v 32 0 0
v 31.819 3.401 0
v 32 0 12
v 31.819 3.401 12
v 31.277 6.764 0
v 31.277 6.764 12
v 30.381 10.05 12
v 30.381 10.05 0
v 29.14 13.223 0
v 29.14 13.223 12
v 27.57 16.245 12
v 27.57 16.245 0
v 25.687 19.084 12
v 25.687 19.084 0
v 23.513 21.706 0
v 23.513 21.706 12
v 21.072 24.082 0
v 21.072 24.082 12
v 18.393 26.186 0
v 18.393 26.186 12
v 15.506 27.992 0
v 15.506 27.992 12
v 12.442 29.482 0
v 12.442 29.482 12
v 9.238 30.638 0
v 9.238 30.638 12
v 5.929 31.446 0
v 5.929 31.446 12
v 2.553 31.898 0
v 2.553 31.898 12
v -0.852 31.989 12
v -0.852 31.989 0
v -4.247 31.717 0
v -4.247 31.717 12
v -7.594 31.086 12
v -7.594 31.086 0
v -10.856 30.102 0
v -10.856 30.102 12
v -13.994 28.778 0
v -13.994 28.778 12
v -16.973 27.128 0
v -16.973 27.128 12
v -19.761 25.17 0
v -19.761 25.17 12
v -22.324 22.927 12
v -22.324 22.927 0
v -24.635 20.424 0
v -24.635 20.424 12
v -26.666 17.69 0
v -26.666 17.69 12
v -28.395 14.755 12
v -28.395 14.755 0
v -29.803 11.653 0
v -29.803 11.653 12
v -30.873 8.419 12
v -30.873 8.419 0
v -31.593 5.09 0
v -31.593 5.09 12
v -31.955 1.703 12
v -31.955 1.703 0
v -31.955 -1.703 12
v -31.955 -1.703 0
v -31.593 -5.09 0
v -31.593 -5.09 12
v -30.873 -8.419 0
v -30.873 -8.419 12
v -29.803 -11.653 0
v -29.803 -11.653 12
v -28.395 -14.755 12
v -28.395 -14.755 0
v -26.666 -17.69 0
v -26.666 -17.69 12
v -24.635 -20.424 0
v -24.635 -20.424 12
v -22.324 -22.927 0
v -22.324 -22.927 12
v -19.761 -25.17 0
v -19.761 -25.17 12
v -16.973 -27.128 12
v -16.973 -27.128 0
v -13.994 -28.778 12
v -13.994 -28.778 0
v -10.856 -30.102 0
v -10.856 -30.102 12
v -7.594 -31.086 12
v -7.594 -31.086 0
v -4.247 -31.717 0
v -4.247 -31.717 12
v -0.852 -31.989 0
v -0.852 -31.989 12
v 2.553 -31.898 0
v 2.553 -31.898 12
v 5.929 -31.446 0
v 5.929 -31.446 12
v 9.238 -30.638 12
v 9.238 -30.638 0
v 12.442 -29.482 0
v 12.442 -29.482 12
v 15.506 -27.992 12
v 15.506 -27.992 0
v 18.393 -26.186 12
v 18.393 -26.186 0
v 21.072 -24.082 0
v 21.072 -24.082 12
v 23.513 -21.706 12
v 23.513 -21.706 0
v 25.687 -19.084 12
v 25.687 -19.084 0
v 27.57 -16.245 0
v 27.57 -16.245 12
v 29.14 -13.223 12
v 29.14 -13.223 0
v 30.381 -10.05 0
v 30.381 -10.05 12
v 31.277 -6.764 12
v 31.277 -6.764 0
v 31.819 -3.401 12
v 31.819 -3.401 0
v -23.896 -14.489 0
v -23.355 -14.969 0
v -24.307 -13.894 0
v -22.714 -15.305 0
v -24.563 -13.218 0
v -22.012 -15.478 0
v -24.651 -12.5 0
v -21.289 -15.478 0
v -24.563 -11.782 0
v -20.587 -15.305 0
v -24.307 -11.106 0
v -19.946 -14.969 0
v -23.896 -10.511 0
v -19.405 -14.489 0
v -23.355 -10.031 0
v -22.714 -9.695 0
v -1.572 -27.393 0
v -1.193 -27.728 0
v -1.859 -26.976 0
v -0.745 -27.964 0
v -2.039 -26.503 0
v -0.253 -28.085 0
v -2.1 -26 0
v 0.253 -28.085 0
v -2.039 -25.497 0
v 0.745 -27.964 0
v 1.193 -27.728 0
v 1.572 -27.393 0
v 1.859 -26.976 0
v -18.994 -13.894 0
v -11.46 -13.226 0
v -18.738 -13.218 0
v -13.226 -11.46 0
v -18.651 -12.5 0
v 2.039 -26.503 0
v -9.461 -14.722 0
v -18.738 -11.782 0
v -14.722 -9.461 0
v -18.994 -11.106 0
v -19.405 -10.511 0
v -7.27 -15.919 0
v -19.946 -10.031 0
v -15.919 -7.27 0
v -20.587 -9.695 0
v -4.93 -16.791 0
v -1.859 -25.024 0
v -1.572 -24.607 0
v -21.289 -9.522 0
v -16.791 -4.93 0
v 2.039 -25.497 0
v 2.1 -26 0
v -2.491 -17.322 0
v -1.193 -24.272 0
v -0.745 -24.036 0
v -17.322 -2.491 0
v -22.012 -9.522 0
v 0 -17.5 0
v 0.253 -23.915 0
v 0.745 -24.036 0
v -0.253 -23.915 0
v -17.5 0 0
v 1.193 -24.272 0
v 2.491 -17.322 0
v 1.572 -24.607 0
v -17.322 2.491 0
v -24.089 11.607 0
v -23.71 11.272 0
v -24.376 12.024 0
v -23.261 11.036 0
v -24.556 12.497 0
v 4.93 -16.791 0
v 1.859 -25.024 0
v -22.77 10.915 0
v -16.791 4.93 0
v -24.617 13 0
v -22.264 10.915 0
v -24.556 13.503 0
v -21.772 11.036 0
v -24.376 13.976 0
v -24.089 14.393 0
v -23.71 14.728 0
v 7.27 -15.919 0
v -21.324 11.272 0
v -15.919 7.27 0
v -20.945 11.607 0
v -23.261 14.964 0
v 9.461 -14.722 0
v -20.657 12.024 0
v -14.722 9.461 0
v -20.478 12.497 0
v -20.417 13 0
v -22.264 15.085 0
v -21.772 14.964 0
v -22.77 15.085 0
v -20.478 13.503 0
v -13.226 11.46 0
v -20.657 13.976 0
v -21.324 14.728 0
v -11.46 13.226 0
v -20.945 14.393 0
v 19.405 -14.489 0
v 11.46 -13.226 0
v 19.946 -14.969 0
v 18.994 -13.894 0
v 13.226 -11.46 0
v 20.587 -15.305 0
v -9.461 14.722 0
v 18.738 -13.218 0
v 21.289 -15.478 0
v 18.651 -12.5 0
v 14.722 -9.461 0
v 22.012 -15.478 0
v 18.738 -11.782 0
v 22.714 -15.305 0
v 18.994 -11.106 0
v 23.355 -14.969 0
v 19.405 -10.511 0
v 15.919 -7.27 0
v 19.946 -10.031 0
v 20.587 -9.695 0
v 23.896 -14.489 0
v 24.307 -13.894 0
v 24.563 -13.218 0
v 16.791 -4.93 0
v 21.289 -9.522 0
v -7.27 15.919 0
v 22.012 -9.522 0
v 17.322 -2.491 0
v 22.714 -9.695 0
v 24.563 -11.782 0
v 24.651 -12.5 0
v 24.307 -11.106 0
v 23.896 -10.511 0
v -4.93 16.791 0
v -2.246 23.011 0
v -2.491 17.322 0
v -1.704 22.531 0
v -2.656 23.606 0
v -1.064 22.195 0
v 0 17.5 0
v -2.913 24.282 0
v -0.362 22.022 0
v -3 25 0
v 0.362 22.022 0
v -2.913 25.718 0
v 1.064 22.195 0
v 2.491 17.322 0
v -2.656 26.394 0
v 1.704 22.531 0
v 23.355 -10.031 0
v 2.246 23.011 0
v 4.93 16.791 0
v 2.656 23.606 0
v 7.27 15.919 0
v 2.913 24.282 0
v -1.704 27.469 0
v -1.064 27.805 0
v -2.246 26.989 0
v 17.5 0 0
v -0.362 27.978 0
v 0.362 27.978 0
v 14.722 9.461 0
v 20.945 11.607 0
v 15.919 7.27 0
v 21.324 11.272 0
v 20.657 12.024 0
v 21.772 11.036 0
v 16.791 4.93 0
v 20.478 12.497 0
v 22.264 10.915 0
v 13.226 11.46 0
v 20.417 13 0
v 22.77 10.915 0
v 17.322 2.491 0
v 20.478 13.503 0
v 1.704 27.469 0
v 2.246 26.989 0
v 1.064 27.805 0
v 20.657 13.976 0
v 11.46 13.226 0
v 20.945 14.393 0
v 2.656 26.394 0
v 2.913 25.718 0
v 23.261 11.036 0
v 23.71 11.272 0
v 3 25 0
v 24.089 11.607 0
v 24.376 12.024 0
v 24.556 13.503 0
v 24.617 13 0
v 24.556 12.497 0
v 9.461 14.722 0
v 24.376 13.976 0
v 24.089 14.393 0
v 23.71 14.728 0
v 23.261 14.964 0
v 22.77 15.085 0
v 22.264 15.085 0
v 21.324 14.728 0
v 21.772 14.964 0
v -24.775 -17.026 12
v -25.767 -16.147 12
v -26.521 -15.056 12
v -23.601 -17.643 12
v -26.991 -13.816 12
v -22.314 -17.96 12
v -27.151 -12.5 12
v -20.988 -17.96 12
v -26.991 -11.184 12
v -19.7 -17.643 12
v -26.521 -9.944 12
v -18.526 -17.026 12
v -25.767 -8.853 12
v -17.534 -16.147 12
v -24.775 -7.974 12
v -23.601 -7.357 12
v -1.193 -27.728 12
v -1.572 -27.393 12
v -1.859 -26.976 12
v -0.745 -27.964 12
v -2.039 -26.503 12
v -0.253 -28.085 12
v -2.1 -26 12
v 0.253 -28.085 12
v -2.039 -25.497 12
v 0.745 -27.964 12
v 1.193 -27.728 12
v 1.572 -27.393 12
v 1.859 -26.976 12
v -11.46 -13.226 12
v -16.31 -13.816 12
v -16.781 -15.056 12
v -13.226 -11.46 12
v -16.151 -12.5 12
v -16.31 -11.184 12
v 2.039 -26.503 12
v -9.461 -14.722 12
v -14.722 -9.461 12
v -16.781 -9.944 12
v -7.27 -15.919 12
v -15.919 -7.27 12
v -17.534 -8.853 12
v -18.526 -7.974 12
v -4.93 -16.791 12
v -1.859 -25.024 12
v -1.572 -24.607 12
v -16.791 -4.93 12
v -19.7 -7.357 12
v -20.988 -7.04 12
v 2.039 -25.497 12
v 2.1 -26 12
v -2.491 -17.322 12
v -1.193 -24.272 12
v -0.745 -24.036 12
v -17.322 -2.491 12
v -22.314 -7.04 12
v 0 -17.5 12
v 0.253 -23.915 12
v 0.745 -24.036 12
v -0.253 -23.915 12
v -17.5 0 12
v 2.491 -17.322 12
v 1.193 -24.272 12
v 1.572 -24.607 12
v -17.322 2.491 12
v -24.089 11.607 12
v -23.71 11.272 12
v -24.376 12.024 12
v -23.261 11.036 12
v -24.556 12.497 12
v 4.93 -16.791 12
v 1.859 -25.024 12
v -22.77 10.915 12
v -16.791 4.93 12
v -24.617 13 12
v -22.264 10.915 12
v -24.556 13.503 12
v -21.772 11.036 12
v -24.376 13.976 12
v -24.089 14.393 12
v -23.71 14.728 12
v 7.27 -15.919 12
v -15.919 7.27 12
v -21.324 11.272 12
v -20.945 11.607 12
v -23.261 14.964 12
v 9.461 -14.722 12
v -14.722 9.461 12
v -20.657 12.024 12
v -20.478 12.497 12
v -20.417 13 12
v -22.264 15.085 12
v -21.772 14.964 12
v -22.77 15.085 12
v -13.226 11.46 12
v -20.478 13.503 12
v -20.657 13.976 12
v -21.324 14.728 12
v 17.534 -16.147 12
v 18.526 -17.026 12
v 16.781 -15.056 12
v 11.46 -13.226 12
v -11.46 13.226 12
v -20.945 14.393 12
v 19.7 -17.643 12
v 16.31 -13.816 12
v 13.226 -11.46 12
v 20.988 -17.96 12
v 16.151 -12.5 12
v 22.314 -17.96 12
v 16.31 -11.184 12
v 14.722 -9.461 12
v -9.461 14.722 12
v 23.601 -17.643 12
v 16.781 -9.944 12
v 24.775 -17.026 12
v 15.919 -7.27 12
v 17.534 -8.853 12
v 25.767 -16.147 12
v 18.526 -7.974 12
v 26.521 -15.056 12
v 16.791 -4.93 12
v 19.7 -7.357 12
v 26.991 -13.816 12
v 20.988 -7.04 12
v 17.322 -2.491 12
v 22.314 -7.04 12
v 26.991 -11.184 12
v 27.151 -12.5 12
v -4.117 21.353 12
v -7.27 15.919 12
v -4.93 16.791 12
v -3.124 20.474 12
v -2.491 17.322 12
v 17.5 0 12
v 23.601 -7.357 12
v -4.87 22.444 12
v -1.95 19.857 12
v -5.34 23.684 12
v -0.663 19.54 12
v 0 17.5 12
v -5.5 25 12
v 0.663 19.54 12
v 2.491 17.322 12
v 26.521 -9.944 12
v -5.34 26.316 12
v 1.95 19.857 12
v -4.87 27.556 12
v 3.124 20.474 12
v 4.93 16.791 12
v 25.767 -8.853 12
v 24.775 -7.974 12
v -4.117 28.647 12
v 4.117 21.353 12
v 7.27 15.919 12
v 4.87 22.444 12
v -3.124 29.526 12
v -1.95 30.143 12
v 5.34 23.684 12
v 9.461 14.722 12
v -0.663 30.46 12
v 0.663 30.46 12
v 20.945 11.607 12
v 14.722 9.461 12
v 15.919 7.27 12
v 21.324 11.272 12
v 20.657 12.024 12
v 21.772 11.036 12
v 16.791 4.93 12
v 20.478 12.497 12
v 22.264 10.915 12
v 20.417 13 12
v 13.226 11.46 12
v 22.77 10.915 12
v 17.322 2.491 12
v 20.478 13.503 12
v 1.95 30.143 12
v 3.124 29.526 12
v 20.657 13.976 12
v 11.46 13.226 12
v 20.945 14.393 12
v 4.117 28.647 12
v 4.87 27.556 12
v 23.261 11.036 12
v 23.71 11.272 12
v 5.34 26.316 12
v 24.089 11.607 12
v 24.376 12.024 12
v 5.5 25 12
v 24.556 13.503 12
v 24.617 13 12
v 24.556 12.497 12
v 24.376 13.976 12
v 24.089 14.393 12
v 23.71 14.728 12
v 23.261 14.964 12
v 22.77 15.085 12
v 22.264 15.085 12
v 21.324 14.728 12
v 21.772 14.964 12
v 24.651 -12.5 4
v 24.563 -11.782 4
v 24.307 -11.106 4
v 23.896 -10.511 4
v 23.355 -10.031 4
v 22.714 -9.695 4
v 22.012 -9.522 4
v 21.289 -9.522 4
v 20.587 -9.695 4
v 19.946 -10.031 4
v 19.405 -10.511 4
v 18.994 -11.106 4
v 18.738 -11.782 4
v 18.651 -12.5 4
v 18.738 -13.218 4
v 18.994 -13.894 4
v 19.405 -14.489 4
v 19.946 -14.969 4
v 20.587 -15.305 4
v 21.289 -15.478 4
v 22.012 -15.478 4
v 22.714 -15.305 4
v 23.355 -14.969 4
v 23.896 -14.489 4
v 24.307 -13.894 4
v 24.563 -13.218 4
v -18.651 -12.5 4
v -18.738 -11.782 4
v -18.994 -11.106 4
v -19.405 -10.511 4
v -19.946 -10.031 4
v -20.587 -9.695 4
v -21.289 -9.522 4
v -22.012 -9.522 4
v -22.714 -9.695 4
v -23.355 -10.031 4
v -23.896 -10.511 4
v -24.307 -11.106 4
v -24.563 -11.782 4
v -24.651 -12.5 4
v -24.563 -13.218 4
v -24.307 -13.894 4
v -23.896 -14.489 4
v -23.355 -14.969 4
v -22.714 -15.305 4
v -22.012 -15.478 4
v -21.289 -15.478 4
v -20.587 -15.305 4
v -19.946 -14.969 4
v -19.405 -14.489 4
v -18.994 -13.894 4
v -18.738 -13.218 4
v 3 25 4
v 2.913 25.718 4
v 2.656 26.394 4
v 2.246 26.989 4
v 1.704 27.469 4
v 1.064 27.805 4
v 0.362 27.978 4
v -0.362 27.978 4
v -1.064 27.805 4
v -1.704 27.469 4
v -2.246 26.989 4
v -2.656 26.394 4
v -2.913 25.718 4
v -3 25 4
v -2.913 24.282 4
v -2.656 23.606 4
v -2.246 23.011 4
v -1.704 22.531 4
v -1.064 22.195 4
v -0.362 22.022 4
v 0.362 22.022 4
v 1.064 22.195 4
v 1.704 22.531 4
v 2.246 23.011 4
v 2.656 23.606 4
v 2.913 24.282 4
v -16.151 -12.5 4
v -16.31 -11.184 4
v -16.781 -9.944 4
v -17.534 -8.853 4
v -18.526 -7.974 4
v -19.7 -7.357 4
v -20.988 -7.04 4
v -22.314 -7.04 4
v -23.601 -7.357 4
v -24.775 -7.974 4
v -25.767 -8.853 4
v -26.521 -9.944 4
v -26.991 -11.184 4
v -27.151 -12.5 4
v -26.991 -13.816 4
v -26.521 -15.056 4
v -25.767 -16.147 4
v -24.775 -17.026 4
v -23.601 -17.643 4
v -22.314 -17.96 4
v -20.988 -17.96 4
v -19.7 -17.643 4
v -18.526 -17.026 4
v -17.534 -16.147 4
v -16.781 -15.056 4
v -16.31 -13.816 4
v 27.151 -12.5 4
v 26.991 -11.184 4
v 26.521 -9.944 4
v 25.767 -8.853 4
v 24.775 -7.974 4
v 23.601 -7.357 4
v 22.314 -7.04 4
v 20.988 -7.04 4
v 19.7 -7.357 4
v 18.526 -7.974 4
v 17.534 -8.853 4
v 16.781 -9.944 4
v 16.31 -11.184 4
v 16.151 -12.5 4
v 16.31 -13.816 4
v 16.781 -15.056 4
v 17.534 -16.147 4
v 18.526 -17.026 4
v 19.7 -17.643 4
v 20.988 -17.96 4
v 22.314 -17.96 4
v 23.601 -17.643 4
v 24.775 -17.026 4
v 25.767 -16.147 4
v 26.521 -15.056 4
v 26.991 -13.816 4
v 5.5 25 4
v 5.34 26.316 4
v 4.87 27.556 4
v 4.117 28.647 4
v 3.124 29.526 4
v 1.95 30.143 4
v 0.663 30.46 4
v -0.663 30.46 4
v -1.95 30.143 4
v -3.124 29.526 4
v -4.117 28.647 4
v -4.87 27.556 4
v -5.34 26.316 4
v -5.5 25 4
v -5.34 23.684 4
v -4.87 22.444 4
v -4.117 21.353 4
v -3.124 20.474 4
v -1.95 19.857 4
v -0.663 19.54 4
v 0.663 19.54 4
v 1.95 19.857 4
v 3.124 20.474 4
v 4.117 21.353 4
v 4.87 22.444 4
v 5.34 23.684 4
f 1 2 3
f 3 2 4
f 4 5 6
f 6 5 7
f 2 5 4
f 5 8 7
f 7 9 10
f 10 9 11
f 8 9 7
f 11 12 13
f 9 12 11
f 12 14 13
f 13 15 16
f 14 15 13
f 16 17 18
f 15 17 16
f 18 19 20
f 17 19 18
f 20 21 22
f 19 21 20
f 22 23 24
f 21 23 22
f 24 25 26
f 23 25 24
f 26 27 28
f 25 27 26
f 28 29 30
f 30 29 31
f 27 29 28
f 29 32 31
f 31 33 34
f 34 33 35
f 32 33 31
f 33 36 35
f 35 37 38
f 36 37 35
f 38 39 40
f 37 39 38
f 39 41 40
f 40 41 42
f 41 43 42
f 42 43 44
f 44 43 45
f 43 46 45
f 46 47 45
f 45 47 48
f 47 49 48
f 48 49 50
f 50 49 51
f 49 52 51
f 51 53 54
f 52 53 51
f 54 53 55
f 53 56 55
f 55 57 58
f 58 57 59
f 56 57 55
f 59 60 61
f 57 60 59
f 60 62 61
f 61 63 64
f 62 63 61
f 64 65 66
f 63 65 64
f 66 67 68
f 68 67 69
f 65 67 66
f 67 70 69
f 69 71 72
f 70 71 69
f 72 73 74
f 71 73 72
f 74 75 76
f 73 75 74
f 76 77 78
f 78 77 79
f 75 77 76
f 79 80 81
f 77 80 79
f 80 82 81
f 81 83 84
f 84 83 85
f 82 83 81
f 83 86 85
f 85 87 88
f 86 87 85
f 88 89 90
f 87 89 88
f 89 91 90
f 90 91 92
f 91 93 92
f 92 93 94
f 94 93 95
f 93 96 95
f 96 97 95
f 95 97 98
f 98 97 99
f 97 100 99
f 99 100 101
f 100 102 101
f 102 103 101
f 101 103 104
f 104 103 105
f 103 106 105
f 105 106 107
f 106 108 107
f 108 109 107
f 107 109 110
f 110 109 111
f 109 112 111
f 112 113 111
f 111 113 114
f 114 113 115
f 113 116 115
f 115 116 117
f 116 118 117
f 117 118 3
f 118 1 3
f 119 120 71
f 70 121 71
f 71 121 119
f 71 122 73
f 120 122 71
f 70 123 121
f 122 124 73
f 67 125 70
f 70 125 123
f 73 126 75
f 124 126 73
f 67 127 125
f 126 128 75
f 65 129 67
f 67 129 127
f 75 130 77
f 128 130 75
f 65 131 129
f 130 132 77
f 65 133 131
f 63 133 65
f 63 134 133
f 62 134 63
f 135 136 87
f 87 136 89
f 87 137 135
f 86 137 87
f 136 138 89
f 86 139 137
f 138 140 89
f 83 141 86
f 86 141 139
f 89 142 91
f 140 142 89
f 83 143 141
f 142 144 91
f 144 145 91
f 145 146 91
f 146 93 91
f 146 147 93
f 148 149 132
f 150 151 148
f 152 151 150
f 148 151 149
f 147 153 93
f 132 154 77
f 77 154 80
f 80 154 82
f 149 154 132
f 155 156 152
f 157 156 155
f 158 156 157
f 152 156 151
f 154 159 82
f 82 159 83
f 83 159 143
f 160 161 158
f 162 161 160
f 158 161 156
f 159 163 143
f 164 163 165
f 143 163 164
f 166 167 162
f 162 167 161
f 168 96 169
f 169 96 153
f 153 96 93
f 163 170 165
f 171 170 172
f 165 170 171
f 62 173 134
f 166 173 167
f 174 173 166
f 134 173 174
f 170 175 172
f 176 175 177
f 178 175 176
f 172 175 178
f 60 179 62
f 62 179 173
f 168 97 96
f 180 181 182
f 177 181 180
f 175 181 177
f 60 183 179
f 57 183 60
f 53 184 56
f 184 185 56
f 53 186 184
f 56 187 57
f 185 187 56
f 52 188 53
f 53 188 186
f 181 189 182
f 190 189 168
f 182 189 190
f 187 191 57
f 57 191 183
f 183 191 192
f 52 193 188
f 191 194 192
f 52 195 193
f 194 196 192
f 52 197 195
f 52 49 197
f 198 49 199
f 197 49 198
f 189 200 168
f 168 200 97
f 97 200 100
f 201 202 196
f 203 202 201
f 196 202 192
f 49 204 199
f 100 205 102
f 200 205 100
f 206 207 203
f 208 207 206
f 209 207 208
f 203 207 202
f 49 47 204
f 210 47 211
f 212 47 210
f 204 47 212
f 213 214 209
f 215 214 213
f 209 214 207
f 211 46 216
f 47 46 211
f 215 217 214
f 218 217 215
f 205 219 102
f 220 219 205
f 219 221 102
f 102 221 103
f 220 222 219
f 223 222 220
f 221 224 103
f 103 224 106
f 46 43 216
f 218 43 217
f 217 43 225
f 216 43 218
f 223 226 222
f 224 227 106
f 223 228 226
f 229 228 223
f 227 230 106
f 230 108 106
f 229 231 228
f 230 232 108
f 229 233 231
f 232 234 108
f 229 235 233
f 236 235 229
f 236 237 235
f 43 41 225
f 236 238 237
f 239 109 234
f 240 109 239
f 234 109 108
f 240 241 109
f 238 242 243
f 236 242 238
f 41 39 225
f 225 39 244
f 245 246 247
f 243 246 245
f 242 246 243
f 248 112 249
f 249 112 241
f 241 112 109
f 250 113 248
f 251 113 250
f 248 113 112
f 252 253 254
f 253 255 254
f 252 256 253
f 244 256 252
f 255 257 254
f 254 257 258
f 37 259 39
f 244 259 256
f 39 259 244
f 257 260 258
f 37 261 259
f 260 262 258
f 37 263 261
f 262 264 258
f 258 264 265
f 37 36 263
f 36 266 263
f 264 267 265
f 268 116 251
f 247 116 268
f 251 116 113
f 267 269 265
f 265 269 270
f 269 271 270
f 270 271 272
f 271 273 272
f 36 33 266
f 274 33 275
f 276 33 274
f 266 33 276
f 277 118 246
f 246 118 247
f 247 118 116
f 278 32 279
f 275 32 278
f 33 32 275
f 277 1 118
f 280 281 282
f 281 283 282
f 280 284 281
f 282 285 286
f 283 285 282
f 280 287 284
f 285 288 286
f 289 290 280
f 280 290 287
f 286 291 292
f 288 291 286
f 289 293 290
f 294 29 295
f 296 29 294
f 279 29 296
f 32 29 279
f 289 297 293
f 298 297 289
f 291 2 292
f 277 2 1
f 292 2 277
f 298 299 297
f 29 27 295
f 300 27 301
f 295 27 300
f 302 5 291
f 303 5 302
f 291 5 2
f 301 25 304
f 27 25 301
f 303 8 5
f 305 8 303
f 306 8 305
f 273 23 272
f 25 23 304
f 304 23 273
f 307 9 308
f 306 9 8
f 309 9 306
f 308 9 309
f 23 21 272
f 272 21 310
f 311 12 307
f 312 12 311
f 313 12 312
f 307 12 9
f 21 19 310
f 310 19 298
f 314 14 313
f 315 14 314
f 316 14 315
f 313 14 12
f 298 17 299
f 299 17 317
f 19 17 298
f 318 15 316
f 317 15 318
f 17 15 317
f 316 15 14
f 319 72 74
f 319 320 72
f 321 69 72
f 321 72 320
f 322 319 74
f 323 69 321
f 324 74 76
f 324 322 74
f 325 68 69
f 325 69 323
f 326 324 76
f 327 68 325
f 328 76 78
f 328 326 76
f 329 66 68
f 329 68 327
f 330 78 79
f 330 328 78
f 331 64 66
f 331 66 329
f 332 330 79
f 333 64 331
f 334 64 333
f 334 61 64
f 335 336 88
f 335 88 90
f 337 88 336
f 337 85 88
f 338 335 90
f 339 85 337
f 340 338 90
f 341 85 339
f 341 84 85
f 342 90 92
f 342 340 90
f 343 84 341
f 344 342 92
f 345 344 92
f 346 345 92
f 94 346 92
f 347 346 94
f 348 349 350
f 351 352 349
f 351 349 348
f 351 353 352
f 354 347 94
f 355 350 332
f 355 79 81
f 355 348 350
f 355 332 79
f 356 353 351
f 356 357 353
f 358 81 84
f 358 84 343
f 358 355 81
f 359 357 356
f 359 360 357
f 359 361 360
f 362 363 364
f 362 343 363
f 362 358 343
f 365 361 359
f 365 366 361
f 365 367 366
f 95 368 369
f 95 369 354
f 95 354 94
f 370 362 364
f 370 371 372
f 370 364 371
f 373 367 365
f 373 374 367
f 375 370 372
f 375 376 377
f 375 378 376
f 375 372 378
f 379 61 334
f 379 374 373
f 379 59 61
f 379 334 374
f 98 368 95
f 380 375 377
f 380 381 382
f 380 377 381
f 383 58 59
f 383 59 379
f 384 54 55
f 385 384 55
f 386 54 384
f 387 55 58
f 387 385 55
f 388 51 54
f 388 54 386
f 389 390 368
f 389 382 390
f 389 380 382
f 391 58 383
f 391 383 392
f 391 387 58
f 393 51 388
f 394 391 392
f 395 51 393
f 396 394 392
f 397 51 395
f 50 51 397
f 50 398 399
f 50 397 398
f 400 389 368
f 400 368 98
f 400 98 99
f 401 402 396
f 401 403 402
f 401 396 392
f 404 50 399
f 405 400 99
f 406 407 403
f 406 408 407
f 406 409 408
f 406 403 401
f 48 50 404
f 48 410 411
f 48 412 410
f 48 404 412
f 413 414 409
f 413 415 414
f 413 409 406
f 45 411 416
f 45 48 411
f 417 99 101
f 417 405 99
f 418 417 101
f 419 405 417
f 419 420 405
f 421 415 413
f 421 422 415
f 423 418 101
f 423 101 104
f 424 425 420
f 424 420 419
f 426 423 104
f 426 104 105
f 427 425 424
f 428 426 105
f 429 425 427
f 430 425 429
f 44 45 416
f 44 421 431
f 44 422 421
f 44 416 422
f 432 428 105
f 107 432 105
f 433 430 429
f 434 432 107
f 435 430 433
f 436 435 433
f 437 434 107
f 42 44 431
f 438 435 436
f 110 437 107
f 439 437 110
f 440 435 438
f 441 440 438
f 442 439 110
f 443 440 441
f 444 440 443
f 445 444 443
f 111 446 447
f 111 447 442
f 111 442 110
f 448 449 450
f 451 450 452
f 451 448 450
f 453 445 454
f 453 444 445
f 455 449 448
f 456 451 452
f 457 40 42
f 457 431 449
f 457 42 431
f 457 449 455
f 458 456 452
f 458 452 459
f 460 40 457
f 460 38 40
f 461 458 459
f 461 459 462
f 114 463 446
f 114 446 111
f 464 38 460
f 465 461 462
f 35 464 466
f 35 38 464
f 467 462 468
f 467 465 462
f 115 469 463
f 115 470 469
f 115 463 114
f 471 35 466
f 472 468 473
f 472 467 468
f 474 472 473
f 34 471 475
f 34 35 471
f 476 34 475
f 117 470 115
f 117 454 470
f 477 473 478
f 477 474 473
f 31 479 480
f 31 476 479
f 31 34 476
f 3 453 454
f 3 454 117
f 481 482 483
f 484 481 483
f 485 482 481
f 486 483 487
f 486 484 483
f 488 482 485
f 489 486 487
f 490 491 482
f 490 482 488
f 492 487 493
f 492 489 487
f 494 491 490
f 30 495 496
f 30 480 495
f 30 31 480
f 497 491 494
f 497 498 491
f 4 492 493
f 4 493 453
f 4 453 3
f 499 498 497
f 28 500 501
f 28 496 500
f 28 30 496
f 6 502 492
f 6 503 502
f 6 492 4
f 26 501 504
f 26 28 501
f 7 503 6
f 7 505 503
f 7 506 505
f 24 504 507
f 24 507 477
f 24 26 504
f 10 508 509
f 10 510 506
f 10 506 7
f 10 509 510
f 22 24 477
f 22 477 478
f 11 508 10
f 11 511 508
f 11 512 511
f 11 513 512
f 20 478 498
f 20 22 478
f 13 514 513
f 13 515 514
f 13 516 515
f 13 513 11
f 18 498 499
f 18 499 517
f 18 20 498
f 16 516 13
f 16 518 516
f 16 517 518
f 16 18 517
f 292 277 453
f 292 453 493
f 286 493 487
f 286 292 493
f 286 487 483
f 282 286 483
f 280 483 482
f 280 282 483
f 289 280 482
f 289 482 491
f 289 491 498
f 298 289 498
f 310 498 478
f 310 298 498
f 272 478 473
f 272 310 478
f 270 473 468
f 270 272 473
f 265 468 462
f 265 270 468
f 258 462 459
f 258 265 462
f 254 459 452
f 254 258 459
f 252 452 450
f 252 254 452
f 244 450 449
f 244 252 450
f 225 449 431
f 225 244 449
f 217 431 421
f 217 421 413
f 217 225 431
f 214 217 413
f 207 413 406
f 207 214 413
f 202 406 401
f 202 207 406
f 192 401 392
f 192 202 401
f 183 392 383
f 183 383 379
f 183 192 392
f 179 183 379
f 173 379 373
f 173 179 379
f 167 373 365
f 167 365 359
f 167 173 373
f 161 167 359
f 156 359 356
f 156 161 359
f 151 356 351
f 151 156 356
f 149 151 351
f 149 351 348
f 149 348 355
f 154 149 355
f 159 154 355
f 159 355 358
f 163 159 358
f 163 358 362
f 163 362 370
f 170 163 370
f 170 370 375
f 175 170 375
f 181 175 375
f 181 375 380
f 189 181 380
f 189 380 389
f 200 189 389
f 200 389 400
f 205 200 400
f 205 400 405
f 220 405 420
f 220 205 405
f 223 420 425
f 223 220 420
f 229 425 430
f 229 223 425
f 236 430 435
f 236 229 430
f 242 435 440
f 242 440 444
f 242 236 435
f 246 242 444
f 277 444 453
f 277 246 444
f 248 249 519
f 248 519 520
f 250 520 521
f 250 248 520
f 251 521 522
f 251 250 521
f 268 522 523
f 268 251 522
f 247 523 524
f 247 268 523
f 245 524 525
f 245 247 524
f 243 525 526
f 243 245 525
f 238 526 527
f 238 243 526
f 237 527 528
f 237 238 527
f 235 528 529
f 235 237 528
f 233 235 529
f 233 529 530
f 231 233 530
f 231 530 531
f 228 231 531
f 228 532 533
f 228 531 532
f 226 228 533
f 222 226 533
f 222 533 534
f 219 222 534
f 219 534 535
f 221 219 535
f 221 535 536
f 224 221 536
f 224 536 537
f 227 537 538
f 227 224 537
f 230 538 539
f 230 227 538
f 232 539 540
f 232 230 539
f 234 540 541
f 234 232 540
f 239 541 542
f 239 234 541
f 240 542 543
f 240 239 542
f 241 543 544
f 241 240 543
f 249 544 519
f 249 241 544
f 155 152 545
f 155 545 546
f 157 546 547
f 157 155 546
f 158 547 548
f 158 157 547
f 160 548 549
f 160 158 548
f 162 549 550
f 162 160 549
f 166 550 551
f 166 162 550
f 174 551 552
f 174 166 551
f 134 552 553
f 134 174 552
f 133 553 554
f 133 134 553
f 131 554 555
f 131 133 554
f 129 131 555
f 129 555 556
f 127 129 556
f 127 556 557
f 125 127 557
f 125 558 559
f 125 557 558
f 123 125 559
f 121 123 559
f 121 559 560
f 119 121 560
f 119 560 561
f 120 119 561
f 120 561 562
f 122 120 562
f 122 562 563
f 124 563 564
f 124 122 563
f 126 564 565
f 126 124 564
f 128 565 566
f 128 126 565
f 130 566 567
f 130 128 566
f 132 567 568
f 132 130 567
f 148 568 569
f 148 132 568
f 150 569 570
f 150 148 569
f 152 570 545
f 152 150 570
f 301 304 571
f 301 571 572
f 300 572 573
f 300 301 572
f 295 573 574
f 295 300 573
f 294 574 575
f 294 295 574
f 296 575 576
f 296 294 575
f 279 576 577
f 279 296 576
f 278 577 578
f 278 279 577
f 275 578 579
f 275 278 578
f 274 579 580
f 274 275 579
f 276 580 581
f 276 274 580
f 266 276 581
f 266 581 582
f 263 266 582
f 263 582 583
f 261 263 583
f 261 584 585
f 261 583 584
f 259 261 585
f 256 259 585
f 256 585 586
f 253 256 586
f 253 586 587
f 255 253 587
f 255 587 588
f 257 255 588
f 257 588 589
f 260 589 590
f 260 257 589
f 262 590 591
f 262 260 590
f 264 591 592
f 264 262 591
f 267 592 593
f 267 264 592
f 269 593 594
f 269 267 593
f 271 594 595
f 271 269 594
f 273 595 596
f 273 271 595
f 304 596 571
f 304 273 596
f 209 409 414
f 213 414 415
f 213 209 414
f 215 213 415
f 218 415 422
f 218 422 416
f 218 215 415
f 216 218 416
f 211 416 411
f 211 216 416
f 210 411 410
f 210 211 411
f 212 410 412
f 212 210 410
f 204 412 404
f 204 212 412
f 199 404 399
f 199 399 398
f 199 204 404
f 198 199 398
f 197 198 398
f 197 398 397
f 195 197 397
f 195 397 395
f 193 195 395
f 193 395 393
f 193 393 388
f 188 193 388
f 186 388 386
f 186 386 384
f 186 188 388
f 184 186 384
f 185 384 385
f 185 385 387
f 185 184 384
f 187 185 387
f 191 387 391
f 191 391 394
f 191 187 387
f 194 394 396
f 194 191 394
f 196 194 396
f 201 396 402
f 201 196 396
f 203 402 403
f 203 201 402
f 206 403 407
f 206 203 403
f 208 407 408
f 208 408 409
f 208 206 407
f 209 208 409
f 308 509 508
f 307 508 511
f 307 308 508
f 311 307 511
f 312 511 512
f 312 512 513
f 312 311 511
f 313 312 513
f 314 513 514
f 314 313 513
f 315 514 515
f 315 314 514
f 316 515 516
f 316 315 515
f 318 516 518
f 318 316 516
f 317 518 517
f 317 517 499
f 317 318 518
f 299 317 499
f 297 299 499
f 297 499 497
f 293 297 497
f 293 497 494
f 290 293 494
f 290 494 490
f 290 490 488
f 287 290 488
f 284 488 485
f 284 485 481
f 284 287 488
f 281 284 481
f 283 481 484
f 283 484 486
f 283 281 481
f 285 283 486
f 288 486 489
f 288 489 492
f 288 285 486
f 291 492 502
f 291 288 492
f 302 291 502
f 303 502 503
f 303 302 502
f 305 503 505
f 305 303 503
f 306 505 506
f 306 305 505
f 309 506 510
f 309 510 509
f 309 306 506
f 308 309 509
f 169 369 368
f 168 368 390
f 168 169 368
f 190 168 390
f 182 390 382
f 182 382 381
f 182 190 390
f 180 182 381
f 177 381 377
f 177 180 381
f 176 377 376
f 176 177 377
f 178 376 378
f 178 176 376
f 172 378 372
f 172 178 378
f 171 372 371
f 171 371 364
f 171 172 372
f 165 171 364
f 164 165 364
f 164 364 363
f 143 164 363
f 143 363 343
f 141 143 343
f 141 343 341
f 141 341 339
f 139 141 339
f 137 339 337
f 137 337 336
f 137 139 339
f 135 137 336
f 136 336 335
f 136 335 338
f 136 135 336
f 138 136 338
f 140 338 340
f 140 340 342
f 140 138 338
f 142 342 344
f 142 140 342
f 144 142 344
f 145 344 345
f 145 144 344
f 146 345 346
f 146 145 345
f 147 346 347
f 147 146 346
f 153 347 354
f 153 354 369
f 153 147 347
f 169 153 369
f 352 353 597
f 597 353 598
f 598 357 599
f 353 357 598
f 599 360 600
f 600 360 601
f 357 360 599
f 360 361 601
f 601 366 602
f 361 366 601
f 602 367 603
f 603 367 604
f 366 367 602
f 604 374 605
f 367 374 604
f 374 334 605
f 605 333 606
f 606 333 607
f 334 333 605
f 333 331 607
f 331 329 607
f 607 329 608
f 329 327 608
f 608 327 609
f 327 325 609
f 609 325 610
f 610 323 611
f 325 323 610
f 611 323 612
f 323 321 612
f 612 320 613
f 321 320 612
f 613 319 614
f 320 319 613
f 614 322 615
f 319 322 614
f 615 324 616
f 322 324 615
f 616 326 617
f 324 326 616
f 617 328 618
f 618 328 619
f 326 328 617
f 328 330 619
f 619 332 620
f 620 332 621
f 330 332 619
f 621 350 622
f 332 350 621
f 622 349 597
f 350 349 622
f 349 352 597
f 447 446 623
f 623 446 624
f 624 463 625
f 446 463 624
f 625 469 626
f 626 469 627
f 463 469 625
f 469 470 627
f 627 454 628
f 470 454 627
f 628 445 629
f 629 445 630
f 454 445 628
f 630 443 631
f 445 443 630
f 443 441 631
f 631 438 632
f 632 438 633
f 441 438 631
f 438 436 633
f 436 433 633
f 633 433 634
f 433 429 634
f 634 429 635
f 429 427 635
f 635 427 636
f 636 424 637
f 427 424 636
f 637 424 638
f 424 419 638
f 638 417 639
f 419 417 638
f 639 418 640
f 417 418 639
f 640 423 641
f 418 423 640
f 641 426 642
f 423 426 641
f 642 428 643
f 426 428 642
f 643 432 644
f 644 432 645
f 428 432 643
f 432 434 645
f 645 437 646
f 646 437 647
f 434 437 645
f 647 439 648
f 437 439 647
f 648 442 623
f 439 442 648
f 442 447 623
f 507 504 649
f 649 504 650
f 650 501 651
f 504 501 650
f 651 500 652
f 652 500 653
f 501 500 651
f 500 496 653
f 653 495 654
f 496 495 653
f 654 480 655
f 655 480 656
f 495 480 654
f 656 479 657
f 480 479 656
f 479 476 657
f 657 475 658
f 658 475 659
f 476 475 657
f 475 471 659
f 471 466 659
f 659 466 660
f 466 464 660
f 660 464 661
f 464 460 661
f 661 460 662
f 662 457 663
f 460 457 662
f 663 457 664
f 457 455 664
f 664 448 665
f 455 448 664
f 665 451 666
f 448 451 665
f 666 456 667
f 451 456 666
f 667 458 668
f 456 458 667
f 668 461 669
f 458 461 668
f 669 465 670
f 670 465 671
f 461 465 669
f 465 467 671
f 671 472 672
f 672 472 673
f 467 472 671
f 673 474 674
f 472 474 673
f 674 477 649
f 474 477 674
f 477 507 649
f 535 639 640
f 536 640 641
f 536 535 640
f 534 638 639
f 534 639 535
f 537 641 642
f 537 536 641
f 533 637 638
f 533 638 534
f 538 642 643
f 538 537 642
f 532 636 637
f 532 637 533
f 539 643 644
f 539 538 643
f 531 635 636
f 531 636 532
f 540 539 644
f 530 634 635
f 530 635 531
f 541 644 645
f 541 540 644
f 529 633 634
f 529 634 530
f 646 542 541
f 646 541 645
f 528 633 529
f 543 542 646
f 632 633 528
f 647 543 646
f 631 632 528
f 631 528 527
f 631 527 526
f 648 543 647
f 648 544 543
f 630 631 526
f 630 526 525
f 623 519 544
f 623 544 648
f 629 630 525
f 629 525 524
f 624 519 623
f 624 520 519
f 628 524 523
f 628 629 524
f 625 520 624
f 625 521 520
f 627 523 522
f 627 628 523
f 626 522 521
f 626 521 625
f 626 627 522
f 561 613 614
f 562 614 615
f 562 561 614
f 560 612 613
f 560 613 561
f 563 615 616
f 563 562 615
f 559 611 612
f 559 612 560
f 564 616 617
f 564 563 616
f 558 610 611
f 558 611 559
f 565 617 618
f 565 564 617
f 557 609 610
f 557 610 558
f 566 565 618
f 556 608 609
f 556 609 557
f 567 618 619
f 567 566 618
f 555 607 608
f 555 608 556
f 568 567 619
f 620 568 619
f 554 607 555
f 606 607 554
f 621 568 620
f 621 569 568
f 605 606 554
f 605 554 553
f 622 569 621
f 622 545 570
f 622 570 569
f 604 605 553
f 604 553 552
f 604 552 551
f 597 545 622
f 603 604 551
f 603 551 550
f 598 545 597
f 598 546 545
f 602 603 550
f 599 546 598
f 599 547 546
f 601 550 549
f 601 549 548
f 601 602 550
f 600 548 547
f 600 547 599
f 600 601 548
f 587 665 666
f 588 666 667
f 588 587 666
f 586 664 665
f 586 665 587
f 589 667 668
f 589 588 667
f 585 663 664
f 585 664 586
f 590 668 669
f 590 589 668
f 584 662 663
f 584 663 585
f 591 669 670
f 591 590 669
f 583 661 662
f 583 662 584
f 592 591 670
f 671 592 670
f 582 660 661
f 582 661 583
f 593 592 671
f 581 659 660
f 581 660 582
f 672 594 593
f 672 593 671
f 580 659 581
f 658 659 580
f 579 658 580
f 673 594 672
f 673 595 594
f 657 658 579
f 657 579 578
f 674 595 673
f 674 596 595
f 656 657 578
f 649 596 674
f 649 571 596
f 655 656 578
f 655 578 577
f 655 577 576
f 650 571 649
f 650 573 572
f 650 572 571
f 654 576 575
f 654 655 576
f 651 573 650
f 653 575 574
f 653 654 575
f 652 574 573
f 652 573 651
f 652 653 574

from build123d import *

# Parameters (mm, degrees)
SKETCH_R     = 32
SKETCH_R_2   = 2.1
SKETCH_R_3   = 3
SKETCH_R_4   = 17.5
PAD_DEPTH    = 12
SKETCH001_R  = 5.5
POCKET_DEPTH = 8


with BuildPart() as part:
    # Sketch → Pad (new body)
    with BuildSketch(Plane.XY):
        Circle(SKETCH_R)
        with Locations((0, -26)):
            Circle(SKETCH_R_2, mode=Mode.SUBTRACT)
        with Locations((-22.51666, 13)):
            Circle(SKETCH_R_2, mode=Mode.SUBTRACT)
        with Locations((22.51666, 13)):
            Circle(SKETCH_R_2, mode=Mode.SUBTRACT)
        with Locations((0, 25)):
            Circle(SKETCH_R_3, mode=Mode.SUBTRACT)
        with Locations((-21.650635, -12.5)):
            Circle(SKETCH_R_3, mode=Mode.SUBTRACT)
        with Locations((21.650635, -12.5)):
            Circle(SKETCH_R_3, mode=Mode.SUBTRACT)
        Circle(SKETCH_R_4, mode=Mode.SUBTRACT)
    extrude(amount=PAD_DEPTH)

    # Sketch001 (on Face10 of Pad) → Pocket (cut)
    with BuildSketch(Plane.XY.offset(12)):
        with Locations((0, 25)):
            Circle(SKETCH001_R)
        with Locations((-21.650635, -12.5)):
            Circle(SKETCH001_R)
        with Locations((21.650635, -12.5)):
            Circle(SKETCH001_R)
    extrude(amount=-POCKET_DEPTH, mode=Mode.SUBTRACT)


solid = part.part
